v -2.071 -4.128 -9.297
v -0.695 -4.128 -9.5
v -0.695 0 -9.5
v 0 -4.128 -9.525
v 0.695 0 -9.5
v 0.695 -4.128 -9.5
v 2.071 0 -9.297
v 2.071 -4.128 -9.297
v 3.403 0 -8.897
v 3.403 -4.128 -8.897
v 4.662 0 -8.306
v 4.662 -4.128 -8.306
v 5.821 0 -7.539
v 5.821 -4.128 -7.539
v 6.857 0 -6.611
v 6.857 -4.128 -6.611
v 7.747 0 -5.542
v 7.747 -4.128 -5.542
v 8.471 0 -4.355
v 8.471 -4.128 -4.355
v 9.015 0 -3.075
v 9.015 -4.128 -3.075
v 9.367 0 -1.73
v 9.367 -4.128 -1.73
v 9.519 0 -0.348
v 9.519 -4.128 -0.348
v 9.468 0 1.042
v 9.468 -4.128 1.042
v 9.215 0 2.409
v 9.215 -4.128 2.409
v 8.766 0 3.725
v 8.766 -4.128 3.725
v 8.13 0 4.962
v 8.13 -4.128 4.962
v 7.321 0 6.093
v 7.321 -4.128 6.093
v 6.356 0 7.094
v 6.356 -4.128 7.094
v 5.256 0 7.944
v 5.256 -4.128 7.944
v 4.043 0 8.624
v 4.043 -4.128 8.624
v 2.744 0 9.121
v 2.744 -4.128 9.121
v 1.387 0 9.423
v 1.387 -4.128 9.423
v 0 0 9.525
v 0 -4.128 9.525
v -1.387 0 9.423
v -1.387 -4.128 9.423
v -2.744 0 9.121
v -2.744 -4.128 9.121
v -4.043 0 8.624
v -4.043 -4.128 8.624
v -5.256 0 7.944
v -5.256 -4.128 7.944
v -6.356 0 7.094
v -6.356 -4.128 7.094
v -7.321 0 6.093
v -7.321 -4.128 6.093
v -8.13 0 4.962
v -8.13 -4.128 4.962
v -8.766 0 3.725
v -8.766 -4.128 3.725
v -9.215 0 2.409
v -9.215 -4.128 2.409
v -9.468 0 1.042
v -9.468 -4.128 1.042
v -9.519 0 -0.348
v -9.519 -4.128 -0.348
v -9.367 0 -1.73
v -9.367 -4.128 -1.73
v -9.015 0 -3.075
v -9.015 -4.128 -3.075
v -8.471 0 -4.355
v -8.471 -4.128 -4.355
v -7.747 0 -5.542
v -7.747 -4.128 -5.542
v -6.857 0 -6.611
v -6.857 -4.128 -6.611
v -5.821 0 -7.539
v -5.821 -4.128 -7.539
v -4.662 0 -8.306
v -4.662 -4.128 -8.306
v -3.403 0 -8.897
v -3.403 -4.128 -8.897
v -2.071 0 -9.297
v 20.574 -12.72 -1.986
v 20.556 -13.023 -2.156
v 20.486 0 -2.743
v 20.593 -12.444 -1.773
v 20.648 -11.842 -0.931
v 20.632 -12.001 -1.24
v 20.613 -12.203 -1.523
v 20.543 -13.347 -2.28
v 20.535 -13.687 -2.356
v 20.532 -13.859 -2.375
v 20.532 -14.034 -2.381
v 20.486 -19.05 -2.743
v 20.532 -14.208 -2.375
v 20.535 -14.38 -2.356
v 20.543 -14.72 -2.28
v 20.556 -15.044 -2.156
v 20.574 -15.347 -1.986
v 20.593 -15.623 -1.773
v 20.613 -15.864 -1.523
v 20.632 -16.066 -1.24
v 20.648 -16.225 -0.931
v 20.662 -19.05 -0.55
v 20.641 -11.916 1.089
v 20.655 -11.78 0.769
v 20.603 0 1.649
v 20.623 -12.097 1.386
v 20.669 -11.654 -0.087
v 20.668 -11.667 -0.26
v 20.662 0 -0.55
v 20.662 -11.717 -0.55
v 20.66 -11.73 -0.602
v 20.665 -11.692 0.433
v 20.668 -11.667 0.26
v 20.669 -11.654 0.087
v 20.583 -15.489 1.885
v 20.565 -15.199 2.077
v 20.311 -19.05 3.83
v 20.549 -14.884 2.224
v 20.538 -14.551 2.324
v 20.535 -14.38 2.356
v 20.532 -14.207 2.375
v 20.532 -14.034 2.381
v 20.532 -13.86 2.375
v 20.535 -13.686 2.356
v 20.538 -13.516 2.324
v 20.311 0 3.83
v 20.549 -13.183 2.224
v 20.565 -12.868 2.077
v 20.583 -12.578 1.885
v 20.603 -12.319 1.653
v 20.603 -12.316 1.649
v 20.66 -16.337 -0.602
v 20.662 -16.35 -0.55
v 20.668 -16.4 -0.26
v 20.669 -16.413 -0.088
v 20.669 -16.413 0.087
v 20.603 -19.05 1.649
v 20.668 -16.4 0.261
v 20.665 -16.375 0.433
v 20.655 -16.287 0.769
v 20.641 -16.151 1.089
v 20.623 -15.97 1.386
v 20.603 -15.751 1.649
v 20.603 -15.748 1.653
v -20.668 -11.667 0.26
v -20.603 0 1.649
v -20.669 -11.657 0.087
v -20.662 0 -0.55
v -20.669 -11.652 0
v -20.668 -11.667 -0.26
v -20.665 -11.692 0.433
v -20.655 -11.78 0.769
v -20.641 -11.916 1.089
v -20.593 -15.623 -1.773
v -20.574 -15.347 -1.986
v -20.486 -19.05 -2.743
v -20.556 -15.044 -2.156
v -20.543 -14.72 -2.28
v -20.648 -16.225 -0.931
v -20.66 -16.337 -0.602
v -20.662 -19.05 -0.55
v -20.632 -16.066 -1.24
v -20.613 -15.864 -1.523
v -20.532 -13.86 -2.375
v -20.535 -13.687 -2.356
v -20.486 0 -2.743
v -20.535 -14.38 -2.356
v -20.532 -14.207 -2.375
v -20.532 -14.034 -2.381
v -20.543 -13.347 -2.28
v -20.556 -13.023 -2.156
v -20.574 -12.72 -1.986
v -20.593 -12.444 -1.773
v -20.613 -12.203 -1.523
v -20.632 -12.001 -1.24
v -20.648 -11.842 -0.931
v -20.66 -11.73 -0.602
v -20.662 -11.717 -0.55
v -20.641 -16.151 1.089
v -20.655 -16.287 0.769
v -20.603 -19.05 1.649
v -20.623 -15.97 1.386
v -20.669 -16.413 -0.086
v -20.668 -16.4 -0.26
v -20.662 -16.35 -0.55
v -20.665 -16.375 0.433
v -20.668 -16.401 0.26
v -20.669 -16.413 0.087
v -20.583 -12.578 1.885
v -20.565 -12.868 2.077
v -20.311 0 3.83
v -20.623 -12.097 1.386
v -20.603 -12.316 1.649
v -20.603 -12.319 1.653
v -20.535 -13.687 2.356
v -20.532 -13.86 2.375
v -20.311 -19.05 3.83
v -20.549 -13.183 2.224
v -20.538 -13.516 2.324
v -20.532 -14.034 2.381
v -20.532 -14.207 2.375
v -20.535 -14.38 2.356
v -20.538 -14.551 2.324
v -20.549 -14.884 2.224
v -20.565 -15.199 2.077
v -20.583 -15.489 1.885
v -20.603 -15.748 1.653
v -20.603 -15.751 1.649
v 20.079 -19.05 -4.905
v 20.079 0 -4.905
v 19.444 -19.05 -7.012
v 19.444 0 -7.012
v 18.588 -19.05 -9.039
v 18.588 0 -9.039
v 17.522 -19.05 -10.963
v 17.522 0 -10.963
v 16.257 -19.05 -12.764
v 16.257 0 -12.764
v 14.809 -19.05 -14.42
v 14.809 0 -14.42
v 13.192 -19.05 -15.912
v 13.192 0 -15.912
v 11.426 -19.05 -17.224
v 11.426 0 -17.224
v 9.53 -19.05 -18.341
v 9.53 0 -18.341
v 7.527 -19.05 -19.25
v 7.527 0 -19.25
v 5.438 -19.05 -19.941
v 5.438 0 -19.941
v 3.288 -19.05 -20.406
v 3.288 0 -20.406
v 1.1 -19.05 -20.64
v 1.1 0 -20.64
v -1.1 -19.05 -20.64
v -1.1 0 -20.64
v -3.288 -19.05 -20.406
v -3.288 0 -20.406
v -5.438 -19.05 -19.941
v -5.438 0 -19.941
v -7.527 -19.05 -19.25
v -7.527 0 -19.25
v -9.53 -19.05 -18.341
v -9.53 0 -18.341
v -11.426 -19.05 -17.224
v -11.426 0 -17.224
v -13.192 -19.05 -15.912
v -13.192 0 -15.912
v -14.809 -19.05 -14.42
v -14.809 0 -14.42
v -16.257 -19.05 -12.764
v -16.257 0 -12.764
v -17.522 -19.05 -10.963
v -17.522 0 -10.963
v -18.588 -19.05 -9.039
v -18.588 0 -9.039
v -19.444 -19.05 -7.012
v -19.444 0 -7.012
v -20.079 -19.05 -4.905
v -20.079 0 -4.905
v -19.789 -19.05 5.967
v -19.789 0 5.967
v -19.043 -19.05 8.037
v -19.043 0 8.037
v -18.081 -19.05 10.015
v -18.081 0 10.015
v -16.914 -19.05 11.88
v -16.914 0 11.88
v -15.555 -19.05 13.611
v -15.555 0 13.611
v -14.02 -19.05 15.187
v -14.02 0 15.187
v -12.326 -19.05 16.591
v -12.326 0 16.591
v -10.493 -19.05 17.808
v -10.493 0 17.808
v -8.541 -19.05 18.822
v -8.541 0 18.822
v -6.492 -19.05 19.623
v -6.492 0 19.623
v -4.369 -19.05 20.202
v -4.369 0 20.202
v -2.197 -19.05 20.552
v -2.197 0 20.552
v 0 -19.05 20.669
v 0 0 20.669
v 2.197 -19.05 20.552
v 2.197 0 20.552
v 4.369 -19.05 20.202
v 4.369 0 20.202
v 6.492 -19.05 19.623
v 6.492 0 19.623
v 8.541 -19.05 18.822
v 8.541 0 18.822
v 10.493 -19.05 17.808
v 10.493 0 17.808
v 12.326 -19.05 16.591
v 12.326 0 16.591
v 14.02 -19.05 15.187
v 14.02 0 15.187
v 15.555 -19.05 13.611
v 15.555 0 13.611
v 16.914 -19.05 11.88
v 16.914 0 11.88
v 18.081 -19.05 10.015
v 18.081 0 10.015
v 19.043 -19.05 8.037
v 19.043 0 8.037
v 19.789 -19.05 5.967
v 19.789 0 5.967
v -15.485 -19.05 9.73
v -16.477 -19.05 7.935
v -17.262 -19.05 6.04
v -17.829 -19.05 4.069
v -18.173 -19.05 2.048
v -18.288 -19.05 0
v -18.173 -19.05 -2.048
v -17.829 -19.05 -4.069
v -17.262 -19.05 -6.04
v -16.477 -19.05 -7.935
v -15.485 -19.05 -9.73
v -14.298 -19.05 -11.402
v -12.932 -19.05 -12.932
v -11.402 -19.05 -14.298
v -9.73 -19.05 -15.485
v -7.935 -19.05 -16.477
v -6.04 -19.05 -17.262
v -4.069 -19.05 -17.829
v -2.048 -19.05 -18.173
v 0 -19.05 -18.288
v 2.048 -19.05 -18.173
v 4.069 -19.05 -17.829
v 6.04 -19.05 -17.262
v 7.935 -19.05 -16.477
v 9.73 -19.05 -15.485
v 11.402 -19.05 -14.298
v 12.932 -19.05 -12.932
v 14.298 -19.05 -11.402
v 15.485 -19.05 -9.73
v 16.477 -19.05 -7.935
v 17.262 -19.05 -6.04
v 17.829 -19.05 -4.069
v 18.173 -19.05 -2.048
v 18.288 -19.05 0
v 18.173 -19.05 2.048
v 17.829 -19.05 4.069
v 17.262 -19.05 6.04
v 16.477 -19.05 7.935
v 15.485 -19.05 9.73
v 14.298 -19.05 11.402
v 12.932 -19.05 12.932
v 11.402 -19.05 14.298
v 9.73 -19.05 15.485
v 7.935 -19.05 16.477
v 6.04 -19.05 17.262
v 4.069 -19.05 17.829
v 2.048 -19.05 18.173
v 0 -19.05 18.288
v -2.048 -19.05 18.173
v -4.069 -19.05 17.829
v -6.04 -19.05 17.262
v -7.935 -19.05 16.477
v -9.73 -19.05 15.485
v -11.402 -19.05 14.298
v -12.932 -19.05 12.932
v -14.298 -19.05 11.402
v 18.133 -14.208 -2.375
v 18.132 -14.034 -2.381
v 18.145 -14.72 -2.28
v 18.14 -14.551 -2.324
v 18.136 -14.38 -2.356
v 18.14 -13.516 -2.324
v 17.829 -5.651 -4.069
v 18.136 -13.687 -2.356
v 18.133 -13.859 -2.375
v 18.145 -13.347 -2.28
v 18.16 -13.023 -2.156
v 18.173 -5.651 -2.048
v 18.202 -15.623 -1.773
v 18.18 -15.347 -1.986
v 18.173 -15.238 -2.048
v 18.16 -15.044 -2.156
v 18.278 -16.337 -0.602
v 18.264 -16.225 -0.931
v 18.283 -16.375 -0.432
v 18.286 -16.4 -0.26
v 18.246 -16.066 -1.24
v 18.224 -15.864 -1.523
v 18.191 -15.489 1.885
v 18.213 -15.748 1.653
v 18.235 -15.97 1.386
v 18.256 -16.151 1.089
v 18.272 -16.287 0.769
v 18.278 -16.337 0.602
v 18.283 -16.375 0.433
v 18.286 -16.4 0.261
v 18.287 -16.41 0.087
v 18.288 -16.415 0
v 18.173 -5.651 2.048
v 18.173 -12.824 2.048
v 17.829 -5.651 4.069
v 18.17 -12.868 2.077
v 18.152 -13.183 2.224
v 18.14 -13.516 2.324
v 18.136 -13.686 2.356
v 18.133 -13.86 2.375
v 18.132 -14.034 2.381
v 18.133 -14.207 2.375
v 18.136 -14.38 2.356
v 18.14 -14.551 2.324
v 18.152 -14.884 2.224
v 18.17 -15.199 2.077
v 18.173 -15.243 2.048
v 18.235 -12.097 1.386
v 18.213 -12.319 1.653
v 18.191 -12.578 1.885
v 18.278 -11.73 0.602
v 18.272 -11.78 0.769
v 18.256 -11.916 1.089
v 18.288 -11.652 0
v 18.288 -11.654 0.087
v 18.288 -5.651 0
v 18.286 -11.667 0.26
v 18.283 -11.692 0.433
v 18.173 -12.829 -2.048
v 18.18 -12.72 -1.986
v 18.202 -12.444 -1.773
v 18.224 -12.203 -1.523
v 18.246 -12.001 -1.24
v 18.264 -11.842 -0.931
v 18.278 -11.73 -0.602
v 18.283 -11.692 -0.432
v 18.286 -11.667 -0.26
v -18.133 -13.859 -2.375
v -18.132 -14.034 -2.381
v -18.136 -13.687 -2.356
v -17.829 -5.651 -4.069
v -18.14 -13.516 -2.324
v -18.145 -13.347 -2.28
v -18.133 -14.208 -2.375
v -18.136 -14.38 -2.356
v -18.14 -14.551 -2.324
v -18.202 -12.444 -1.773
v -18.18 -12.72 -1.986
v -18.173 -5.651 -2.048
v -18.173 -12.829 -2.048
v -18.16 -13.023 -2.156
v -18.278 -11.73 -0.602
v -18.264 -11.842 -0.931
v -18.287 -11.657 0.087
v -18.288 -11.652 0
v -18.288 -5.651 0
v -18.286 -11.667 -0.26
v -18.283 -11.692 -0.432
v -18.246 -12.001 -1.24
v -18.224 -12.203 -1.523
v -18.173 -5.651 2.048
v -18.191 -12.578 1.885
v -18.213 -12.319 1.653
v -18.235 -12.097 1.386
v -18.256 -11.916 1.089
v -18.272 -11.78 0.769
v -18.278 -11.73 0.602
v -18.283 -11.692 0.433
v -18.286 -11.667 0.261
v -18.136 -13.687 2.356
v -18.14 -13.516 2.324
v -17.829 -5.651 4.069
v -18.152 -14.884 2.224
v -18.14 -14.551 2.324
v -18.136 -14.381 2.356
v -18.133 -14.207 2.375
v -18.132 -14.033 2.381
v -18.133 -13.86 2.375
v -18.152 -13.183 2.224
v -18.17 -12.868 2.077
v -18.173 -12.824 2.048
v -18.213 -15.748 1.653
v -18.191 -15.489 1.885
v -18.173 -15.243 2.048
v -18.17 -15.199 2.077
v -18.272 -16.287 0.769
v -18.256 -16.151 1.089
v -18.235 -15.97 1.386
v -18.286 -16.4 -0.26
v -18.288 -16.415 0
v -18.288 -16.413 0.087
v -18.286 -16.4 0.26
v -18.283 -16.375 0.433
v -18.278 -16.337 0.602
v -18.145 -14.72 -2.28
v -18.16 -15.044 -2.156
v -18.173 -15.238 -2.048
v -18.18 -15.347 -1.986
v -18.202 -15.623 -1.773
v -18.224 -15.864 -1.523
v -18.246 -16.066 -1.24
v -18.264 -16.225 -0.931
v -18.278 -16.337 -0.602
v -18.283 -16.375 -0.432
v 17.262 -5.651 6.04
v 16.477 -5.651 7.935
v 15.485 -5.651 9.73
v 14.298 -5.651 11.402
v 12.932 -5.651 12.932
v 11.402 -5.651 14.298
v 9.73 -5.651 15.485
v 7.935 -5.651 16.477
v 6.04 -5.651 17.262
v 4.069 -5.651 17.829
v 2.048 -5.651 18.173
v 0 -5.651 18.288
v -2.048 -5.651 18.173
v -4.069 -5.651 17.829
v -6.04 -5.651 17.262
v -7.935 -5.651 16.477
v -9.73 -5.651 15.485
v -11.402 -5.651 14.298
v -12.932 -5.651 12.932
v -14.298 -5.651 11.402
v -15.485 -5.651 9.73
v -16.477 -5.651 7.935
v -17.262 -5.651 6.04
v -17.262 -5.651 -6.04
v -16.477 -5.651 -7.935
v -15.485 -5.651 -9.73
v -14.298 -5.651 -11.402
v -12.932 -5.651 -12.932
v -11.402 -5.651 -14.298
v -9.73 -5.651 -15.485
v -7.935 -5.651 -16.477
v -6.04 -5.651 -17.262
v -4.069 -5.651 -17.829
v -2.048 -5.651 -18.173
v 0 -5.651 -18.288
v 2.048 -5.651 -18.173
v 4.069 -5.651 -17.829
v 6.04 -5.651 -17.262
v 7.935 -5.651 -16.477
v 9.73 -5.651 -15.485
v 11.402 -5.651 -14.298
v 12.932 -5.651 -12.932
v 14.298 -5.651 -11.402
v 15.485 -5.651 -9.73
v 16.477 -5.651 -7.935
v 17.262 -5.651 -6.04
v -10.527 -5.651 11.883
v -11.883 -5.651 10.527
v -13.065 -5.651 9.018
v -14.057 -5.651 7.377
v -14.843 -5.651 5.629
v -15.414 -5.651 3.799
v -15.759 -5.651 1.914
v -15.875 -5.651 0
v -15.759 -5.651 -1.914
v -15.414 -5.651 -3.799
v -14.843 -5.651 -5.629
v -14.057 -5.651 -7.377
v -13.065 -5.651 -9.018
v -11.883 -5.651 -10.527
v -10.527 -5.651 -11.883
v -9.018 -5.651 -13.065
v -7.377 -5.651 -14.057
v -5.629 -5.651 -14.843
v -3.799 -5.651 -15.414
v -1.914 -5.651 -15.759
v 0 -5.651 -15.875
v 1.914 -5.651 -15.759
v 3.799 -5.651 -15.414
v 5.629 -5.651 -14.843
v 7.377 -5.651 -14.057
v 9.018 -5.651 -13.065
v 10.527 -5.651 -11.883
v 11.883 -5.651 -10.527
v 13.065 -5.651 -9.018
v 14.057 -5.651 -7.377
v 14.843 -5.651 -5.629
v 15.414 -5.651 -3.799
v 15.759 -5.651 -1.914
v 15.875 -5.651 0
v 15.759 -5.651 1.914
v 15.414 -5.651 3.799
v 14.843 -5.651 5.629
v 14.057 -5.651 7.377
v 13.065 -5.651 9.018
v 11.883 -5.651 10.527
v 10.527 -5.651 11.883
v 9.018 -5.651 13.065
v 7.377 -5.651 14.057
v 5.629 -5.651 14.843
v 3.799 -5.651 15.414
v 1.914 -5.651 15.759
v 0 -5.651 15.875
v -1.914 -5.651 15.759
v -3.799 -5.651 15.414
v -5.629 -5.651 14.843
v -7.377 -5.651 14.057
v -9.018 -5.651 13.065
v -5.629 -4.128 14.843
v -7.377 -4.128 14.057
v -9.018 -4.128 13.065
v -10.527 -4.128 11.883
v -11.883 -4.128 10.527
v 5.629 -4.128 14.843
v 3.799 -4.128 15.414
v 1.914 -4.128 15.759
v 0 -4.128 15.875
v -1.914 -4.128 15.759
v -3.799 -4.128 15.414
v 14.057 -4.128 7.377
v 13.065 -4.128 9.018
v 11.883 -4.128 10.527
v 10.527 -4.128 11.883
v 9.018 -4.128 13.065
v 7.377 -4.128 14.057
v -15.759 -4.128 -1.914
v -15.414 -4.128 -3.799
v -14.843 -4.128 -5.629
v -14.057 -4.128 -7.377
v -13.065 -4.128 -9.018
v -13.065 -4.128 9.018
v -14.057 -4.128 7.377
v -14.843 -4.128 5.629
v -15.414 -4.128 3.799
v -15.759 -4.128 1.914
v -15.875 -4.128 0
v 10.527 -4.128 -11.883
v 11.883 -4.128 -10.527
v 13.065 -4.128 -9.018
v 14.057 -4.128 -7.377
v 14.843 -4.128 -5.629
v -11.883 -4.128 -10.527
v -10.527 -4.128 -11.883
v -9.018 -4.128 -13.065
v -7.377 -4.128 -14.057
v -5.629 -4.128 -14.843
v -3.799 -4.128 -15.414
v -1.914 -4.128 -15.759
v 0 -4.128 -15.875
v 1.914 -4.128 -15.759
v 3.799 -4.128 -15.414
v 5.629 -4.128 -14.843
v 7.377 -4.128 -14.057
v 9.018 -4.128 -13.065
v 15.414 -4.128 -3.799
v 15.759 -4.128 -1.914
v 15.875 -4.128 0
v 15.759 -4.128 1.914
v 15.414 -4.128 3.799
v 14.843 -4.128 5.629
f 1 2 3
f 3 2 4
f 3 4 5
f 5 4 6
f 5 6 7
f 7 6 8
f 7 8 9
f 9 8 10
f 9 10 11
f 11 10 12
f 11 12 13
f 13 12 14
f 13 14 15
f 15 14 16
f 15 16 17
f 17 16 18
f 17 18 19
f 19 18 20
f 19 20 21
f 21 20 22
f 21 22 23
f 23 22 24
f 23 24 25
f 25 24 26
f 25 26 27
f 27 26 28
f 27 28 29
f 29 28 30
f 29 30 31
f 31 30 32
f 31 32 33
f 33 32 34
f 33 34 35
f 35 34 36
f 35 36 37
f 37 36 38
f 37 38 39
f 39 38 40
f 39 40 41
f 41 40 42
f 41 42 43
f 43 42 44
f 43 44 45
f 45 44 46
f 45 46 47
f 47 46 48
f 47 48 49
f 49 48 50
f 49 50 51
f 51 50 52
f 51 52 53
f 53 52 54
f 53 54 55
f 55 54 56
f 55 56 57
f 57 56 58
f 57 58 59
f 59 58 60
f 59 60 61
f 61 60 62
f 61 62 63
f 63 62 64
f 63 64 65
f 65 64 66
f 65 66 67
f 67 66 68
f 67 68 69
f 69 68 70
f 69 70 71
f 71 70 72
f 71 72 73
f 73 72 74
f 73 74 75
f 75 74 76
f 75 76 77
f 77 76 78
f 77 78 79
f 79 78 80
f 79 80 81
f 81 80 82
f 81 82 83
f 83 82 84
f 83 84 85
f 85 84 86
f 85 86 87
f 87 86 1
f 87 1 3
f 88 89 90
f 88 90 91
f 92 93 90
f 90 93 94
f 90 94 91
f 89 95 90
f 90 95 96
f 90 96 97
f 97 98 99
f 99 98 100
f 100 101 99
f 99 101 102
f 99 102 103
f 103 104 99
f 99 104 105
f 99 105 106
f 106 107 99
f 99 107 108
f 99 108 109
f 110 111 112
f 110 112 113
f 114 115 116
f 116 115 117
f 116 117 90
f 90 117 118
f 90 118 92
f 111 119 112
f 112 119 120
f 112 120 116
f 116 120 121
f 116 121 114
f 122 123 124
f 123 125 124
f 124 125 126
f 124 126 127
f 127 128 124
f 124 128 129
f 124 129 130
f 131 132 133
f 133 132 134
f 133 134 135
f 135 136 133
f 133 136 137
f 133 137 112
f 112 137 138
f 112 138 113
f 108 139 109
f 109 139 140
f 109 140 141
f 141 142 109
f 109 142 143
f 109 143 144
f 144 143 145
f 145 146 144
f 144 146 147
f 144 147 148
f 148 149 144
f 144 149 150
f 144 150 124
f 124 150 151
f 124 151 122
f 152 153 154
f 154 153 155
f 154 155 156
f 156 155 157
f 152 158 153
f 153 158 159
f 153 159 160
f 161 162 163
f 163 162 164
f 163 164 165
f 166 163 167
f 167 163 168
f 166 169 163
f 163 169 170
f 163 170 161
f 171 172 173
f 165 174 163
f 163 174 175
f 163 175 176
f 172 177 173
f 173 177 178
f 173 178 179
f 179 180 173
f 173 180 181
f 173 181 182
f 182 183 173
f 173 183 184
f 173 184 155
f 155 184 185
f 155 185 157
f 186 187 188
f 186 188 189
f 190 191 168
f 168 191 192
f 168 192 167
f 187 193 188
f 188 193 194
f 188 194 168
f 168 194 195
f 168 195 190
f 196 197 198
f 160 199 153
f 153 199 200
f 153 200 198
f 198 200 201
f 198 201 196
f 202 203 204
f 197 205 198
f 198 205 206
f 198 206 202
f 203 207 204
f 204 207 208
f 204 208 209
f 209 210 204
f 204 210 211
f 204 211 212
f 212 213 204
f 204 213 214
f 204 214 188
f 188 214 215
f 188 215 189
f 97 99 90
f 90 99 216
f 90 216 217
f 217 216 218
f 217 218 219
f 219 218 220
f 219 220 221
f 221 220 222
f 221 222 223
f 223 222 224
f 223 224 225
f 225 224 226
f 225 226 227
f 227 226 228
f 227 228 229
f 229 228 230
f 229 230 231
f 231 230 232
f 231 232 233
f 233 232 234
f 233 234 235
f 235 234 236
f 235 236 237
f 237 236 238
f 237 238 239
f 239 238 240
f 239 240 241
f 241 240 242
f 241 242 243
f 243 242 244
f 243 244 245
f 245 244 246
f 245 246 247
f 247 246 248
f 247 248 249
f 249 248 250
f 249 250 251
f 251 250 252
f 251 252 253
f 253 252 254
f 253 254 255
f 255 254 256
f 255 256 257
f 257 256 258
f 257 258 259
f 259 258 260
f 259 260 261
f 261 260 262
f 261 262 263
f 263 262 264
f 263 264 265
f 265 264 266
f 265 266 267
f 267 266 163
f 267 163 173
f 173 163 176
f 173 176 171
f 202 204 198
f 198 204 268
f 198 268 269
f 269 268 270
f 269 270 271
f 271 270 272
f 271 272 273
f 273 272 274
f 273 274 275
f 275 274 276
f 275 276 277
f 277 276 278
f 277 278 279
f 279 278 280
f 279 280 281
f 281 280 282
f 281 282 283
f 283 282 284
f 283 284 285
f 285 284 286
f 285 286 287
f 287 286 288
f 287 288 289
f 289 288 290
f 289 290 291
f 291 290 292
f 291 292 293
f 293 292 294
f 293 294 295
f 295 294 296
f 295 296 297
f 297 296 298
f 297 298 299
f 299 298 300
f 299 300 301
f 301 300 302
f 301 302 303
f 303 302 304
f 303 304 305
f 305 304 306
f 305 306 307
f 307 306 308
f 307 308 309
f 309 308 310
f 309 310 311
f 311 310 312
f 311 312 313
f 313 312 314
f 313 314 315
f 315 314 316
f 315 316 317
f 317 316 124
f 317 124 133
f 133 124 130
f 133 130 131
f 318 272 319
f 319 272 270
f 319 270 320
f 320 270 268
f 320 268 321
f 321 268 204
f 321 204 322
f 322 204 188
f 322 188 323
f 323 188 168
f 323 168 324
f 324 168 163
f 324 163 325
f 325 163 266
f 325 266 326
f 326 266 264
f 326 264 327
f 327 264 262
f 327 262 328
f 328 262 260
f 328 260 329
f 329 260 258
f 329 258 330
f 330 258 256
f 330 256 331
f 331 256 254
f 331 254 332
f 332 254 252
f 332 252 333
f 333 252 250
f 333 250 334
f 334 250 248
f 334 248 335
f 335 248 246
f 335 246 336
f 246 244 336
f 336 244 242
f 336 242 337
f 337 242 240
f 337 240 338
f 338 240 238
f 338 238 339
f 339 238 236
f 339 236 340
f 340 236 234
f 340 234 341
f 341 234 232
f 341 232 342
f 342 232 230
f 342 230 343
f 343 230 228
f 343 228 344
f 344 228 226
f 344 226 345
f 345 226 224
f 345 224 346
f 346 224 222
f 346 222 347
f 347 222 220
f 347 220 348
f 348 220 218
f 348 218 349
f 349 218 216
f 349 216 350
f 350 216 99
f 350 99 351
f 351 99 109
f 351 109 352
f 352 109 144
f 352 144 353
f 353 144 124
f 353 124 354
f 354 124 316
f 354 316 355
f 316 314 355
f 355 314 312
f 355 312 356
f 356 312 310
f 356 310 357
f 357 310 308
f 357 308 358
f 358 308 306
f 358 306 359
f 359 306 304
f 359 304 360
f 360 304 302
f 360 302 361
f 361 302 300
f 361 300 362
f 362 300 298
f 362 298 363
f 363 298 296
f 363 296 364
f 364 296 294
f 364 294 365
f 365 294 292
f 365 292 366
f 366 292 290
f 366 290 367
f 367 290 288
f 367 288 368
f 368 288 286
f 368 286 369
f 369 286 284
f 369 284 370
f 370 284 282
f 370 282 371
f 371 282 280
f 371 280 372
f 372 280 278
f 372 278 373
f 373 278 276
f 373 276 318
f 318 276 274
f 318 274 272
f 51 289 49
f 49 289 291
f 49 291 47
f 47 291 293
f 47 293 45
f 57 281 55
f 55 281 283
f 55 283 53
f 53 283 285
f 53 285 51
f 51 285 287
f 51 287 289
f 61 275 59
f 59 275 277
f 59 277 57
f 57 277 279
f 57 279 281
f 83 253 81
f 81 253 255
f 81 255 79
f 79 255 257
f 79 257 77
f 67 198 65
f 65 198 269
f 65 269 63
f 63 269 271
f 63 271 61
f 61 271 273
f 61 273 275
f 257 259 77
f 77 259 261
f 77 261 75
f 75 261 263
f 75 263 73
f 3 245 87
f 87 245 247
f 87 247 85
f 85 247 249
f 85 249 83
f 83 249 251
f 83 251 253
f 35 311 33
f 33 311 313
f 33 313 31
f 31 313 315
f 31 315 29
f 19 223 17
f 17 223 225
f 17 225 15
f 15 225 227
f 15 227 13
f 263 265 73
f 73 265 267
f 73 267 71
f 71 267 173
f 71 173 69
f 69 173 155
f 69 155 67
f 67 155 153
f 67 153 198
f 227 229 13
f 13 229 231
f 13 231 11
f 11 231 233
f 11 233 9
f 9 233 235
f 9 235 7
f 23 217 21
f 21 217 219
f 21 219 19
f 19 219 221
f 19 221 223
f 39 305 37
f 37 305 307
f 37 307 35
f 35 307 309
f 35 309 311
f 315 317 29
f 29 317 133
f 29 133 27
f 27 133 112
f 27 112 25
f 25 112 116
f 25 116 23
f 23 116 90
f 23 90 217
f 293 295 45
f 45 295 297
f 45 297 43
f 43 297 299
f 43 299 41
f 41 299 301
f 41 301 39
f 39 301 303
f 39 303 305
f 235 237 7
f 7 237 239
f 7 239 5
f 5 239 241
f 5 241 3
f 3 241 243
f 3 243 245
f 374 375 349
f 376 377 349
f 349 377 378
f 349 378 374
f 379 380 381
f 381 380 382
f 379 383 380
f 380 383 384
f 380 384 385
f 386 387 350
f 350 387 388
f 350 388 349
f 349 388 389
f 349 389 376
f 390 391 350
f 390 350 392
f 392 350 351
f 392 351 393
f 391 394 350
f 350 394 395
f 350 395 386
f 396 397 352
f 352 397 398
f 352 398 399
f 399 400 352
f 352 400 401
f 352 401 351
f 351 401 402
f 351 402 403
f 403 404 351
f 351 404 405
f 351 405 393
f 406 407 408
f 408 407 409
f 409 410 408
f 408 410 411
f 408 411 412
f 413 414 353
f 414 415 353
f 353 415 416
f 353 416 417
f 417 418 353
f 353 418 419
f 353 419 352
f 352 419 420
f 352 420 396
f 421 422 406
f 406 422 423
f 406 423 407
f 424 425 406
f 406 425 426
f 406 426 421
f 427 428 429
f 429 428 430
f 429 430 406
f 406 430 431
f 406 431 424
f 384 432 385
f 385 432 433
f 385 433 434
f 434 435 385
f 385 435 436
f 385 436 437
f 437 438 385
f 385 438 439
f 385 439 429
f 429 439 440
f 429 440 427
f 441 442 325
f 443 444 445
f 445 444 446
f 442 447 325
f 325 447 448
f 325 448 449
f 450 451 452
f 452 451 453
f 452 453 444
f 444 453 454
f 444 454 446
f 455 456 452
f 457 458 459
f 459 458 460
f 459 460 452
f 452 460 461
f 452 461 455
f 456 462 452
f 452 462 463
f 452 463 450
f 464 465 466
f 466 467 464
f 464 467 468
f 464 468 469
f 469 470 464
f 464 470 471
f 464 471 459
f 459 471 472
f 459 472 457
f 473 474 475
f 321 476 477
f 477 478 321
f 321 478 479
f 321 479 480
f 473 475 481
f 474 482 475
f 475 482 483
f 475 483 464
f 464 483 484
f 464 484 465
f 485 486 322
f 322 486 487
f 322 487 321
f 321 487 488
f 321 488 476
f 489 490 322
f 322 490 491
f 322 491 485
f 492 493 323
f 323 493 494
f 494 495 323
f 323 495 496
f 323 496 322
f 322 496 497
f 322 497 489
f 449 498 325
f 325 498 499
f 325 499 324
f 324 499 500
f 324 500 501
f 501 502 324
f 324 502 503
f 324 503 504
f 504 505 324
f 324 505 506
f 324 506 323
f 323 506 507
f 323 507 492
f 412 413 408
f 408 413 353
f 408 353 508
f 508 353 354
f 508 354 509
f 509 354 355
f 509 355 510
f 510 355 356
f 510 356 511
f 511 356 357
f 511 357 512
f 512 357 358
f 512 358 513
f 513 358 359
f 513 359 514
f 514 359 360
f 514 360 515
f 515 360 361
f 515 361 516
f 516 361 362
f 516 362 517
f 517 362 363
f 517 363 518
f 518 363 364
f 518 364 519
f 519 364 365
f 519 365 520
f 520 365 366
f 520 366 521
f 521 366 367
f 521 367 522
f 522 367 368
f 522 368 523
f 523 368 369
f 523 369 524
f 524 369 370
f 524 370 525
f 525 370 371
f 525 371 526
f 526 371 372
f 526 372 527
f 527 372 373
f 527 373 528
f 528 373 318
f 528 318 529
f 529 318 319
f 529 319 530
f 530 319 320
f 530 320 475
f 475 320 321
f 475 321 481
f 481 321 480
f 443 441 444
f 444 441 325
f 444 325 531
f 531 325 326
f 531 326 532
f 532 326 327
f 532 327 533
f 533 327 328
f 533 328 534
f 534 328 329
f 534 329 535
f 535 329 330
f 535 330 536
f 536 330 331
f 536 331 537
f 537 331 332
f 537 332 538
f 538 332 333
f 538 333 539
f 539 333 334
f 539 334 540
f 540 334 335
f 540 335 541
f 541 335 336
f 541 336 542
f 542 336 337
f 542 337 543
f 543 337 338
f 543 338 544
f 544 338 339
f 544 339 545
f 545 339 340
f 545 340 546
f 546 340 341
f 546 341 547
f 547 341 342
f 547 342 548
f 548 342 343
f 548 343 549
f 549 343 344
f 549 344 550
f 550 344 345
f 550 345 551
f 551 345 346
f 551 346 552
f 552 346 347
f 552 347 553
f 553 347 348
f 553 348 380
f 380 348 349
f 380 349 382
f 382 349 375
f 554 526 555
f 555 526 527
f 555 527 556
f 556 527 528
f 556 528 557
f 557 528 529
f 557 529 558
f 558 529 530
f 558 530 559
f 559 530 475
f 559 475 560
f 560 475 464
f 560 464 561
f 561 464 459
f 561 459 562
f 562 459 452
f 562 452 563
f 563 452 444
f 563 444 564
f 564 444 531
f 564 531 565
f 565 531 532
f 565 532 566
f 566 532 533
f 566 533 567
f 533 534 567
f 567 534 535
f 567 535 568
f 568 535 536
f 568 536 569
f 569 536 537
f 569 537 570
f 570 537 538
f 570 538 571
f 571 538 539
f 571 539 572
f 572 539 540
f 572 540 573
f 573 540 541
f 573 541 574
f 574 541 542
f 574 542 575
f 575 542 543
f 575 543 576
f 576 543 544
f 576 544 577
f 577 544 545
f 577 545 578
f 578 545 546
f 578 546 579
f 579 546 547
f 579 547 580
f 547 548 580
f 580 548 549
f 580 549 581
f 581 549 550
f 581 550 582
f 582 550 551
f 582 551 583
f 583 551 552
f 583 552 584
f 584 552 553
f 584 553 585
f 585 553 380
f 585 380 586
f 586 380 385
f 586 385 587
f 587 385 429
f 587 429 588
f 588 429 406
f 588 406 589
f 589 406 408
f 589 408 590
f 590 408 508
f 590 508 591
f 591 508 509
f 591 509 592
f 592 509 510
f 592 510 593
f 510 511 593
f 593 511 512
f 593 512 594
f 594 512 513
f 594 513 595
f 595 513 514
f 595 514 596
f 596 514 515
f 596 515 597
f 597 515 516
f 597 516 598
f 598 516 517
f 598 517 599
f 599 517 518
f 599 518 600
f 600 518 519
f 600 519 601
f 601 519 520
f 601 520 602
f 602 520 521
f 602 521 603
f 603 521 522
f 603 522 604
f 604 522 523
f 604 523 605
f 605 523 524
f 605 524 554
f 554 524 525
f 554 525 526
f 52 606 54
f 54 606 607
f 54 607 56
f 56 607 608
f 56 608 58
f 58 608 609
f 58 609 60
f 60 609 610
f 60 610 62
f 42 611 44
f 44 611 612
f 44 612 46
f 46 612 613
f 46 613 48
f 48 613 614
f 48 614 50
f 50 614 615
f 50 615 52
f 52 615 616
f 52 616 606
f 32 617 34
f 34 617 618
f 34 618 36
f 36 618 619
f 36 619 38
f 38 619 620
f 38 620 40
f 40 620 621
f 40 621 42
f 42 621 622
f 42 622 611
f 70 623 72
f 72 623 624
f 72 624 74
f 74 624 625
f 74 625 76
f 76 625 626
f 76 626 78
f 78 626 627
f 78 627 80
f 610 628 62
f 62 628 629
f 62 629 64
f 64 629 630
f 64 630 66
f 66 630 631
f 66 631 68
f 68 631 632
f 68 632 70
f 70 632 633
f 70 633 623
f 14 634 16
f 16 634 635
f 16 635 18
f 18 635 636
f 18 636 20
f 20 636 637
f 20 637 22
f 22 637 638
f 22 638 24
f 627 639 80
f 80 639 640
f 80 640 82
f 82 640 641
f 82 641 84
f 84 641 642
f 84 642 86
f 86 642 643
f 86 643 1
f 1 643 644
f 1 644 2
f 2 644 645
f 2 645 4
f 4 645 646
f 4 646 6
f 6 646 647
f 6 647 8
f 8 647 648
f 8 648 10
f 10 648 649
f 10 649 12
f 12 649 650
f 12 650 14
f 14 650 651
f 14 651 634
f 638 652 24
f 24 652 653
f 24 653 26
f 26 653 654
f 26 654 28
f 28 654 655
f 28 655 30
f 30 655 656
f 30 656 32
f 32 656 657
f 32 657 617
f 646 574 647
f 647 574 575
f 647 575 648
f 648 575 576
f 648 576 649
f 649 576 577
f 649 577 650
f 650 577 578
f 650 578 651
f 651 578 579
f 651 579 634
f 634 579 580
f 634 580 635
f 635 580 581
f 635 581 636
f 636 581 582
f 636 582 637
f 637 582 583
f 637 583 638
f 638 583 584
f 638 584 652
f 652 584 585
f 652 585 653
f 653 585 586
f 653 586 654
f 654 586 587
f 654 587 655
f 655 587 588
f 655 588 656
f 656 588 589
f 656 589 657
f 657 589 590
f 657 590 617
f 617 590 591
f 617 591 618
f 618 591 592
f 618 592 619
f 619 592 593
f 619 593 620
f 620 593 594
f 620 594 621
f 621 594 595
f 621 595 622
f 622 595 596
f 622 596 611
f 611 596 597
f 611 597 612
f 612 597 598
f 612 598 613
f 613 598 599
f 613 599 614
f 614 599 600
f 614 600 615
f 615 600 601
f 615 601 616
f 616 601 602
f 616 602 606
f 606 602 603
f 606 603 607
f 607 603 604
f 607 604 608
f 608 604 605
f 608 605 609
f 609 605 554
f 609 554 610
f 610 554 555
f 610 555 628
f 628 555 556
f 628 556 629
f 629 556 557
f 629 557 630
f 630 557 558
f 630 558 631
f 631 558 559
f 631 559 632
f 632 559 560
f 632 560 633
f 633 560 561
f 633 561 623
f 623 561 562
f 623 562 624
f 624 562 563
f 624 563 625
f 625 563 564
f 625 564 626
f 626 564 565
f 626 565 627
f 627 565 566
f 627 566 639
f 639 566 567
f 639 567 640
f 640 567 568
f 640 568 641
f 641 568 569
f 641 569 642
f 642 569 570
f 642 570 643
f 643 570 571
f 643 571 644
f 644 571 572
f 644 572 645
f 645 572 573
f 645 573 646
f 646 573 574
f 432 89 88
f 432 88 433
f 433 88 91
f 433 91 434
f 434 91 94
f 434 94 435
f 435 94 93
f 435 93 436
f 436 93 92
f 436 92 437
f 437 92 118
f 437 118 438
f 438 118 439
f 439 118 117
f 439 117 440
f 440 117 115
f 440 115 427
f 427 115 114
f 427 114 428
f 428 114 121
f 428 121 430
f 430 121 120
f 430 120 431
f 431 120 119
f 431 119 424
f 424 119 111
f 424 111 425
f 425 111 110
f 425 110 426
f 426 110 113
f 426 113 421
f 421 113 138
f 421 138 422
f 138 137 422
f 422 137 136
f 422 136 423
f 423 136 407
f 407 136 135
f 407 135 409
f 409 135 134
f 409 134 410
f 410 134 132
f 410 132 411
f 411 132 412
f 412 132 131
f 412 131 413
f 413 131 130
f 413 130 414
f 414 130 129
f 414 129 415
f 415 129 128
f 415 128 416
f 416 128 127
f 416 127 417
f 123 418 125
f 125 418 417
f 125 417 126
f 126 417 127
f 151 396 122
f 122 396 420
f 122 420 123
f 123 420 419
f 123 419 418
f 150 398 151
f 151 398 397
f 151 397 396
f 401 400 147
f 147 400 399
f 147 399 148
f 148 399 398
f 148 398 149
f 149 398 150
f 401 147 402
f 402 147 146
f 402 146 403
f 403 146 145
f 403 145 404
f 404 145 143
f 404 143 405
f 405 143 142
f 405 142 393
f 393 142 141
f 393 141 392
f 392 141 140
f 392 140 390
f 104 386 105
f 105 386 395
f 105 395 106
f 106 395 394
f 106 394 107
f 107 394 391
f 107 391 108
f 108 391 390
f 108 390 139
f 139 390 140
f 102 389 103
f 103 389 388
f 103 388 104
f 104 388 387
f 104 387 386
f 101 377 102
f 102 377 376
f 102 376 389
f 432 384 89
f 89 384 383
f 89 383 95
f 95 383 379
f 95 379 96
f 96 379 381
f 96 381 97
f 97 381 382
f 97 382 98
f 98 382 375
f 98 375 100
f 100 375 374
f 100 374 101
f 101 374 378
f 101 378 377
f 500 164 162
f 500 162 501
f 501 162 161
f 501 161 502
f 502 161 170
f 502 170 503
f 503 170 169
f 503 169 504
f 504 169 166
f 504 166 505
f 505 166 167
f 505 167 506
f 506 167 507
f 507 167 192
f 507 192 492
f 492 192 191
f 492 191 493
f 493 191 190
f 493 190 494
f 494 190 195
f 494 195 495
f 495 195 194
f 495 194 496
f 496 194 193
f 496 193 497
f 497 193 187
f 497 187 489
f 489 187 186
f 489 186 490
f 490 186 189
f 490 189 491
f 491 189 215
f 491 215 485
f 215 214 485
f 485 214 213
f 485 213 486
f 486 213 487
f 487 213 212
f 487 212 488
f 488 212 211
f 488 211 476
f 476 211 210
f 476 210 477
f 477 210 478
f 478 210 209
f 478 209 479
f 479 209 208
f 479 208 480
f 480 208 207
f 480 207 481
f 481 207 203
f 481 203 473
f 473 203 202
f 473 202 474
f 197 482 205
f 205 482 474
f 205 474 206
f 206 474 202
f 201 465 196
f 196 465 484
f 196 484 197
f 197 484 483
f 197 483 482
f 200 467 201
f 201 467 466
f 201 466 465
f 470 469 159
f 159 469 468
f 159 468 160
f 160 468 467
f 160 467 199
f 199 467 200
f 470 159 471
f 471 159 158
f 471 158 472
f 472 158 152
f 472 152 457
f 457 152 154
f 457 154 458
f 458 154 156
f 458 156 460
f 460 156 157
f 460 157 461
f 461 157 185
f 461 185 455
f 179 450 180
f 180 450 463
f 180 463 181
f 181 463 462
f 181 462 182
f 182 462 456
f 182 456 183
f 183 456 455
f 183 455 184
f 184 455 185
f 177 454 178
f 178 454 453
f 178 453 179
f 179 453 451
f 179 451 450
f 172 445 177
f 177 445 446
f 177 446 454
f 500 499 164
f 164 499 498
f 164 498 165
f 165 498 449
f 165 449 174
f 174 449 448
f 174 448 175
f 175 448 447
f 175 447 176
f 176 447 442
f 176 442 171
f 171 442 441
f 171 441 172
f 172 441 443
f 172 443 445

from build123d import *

# Parameters (mm, degrees)
SKETCH1_R               = 20.66925
BOSS_EXTRUDE1_DEPTH     = 19.05
SKETCH2_R               = 18.288
CUT_EXTRUDE1_DEPTH      = 13.3985
SKETCH3_R               = 9.525
CUT_EXTRUDE2_DEPTH      = 35.890375337
SKETCH4_R               = 15.875
CUT_EXTRUDE3_DEPTH      = 1.524
CUT_EXTRUDE4_DEPTH      = 35.890375337
CUT_EXTRUDE4_DEPTH_BACK = 35.890375337
SKETCH5_R               = 2.38125


with BuildPart() as part:
    # Sketch1 → Boss-Extrude1 (new body)
    with BuildSketch(Plane(origin=(0, 0, 0), x_dir=(1, 0, 0), z_dir=(0, 1, 0))):
        with Locations(Location((0, 0, 0), (0, 0, 270))):
            Circle(SKETCH1_R)
    extrude(amount=-BOSS_EXTRUDE1_DEPTH)

    # Sketch2 → Cut-Extrude1 (cut)
    with BuildSketch(Plane.XZ.offset(19.05)):
        with Locations(Location((0, 0, 0), (0, 0, 270))):
            Circle(SKETCH2_R)
    extrude(amount=-CUT_EXTRUDE1_DEPTH, mode=Mode.SUBTRACT)

    # Sketch3 → Cut-Extrude2 (cut, through all)
    with BuildSketch(Plane(origin=(0, 0, 0), x_dir=(1, 0, 0), z_dir=(0, 1, 0))):
        with Locations(Location((0, 0, 0), (0, 0, 270))):
            Circle(SKETCH3_R)
    extrude(amount=-CUT_EXTRUDE2_DEPTH, mode=Mode.SUBTRACT)

    # Sketch4 → Cut-Extrude3 (cut)
    with BuildSketch(Plane.XZ.offset(5.6515)):
        with Locations(Location((0, 0, 0), (0, 0, 270))):
            Circle(SKETCH4_R)
    extrude(amount=-CUT_EXTRUDE3_DEPTH, mode=Mode.SUBTRACT)

    # Sketch5 → Cut-Extrude4 (cut, two sides: drawn at the far end of the back side and taken through both)
    with BuildSketch(Plane(origin=(0, 0, 0), x_dir=(0, 0, -1), z_dir=(1, 0, 0)).offset(-CUT_EXTRUDE4_DEPTH_BACK)):
        with Locations((0, -14.0335)):
            Circle(SKETCH5_R)
    extrude(amount=CUT_EXTRUDE4_DEPTH + CUT_EXTRUDE4_DEPTH_BACK, mode=Mode.SUBTRACT)


solid = part.part
